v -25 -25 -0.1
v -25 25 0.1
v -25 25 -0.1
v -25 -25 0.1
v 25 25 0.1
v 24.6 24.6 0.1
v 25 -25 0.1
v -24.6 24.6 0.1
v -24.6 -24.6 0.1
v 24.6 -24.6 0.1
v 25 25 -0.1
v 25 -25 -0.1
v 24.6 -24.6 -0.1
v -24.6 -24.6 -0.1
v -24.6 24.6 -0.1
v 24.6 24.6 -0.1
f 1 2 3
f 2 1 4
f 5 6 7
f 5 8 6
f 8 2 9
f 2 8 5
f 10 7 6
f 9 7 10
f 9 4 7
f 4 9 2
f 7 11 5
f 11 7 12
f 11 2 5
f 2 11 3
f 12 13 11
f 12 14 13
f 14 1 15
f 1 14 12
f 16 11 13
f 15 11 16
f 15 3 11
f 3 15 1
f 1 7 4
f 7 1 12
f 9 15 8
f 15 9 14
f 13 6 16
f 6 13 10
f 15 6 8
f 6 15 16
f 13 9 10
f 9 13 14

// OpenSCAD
nozzle = 0.4;

difference() {
    cube([50,50,0.2], center=true);
    cube([50-2*nozzle,50-2*nozzle,0.3], center=true);
}
